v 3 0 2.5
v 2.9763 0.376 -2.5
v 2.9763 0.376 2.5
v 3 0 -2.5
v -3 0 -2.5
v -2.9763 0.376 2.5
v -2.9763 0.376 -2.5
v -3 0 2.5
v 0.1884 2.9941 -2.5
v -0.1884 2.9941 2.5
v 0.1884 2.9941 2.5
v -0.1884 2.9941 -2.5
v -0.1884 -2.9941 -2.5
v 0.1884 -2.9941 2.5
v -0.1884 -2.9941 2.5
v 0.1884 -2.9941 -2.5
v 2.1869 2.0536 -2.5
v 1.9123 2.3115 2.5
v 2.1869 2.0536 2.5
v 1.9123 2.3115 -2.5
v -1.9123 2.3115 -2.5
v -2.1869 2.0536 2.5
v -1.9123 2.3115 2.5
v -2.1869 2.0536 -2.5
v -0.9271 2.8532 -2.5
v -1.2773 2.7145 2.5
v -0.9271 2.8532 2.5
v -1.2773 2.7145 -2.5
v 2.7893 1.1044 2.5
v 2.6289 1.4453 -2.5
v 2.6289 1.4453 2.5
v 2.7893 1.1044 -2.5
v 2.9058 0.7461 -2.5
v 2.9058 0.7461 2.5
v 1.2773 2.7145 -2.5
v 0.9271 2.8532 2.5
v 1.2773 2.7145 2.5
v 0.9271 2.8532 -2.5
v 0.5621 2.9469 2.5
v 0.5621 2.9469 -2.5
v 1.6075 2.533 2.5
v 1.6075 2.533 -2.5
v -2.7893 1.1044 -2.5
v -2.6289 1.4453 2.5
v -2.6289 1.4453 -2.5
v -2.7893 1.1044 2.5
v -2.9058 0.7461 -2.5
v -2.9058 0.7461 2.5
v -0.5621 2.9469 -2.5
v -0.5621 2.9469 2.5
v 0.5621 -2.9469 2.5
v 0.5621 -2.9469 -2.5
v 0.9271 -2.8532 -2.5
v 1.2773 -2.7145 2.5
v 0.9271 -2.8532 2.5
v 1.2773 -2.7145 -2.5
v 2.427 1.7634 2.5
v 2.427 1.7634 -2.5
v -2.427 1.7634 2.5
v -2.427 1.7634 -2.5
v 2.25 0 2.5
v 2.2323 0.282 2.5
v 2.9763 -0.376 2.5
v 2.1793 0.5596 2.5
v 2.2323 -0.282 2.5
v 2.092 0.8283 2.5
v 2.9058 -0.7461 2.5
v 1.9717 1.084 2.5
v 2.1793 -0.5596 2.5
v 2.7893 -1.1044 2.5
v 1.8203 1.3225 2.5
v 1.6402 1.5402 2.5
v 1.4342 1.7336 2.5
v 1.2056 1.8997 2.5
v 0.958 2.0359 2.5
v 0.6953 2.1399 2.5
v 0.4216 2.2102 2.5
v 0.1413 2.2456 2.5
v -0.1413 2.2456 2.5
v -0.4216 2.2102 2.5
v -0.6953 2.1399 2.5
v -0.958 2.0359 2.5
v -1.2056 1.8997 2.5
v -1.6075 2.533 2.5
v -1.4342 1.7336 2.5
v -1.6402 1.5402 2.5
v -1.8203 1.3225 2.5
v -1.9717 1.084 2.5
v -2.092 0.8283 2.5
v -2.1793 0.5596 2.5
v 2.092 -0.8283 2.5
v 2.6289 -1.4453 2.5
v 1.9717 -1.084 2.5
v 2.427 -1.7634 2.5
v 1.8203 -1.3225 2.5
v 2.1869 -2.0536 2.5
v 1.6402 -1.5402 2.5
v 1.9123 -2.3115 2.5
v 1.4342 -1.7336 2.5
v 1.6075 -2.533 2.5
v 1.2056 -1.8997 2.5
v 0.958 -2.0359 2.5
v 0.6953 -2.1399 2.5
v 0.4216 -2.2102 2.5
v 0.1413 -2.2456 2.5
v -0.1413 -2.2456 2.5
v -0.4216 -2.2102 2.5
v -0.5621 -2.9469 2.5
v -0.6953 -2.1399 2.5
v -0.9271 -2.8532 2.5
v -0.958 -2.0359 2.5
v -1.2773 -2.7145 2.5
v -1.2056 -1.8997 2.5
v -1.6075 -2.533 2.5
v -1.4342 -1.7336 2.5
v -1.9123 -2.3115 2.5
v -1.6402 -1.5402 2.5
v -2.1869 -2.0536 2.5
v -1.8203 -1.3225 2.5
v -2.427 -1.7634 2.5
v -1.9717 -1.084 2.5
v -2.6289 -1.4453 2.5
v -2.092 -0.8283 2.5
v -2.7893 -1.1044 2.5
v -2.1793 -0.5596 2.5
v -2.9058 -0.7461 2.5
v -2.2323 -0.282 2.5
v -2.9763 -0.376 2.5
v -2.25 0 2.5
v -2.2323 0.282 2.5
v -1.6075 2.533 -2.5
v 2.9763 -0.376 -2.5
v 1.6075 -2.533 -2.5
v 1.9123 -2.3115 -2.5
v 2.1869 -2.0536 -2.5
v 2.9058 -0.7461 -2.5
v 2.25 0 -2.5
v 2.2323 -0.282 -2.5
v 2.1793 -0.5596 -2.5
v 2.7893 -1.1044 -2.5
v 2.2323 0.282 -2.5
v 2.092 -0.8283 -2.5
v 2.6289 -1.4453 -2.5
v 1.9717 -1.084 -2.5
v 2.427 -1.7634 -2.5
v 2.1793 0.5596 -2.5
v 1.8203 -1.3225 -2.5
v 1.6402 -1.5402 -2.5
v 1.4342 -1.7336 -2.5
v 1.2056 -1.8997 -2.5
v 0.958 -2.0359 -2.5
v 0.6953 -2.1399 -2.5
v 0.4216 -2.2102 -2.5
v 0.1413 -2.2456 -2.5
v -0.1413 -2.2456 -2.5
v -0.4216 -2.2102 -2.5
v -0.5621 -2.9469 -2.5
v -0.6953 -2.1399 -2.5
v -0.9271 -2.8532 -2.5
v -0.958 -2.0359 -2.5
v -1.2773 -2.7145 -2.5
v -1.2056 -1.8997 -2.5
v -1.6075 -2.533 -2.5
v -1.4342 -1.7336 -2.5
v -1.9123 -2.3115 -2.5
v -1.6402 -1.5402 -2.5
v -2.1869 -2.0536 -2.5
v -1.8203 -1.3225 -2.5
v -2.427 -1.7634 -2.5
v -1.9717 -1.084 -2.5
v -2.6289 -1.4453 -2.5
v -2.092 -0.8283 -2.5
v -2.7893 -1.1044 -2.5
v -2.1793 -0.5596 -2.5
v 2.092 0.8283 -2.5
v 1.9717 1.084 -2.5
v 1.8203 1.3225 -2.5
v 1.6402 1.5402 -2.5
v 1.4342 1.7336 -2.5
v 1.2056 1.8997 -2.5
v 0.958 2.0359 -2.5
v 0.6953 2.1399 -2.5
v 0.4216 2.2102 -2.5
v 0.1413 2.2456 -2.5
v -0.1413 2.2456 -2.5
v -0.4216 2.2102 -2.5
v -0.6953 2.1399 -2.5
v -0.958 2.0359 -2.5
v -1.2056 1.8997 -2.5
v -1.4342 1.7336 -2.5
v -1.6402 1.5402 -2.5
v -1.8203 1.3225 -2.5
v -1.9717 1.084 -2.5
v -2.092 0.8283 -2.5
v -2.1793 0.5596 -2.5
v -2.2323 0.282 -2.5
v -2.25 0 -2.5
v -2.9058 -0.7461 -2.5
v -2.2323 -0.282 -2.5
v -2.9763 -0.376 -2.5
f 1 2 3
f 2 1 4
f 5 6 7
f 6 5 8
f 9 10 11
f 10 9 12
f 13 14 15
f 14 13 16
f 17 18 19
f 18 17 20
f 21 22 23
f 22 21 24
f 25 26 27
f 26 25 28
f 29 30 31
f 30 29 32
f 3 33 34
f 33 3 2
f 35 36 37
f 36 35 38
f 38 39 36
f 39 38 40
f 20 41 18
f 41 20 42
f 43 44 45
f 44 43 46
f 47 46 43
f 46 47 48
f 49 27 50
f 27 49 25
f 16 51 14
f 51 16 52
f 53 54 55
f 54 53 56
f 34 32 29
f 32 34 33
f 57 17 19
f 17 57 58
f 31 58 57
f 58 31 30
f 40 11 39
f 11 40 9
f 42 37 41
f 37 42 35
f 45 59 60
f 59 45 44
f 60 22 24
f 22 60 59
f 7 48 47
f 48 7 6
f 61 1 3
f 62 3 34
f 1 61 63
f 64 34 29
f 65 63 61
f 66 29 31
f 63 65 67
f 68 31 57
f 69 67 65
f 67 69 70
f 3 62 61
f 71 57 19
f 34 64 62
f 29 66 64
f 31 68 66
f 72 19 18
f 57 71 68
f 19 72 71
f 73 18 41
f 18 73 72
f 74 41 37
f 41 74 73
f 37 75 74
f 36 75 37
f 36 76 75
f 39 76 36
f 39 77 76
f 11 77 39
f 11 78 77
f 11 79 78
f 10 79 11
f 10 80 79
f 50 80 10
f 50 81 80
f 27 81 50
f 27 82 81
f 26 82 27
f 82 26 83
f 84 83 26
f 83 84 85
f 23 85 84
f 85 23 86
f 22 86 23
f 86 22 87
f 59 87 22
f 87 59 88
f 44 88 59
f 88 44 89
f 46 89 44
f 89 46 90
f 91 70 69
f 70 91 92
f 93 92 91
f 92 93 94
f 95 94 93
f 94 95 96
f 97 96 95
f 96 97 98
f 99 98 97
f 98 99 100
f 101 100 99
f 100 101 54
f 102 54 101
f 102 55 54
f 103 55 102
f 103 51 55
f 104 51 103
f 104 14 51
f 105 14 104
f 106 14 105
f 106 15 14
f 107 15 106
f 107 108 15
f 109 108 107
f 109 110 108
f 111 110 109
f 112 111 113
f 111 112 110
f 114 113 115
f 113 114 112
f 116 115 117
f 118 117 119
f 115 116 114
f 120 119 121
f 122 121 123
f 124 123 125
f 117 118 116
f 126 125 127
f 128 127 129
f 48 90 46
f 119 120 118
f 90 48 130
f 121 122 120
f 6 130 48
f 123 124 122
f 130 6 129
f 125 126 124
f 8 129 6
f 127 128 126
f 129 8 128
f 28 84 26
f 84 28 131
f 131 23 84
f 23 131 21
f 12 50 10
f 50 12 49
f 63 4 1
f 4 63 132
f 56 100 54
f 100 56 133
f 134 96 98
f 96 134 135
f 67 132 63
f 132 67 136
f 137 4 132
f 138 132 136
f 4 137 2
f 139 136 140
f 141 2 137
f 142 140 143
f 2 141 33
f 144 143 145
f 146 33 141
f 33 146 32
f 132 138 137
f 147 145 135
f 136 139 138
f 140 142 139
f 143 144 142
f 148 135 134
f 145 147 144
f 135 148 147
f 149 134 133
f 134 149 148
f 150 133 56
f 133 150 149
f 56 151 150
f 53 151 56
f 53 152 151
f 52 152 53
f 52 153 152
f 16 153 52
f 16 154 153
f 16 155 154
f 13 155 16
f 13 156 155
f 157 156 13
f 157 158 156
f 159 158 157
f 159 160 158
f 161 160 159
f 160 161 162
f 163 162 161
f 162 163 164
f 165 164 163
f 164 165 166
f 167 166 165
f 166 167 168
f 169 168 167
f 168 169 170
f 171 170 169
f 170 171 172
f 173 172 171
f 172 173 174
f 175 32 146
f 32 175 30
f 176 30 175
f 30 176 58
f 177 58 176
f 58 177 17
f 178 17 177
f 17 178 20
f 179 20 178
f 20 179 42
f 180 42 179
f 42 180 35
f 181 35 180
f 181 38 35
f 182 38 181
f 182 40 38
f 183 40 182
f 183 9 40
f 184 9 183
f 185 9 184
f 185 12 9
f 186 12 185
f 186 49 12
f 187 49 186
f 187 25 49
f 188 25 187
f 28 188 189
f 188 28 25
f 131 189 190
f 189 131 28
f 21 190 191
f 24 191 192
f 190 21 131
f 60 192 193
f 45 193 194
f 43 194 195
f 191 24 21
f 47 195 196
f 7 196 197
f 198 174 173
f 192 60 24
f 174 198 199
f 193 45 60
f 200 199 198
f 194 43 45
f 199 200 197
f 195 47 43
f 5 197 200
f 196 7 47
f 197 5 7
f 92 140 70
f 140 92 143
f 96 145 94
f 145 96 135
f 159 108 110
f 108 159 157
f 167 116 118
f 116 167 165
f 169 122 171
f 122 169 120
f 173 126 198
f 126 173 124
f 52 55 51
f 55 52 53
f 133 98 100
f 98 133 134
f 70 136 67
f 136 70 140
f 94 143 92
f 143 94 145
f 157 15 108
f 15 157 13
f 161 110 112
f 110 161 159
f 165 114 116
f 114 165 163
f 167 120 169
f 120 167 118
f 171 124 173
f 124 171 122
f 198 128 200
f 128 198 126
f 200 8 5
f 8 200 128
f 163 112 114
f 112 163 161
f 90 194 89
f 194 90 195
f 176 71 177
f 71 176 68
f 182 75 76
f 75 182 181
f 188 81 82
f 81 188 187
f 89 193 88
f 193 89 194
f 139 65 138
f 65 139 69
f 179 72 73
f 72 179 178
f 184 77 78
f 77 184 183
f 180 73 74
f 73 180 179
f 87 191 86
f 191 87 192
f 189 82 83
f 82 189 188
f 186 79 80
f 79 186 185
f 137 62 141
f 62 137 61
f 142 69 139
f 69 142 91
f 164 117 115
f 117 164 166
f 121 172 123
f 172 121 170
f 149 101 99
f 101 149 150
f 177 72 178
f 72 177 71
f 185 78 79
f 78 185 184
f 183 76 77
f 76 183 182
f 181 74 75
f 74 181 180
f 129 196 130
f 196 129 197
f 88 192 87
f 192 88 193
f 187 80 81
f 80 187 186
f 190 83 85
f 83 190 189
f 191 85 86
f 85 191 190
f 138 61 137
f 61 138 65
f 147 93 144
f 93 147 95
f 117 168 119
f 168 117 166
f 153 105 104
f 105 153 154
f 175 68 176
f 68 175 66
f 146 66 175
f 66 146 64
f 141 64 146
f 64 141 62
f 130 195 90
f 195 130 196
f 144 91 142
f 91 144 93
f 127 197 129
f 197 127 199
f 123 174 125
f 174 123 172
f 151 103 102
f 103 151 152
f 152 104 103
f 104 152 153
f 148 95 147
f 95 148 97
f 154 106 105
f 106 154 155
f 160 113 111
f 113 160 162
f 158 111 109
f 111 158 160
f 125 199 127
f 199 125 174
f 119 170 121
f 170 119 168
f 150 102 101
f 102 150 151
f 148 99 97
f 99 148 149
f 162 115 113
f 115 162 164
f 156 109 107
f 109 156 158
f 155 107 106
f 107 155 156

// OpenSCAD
$fn = 50;


difference() {
	union() {
		translate(v = [0, 0, -2.5000000000]) {
			cylinder(h = 5, r = 3.0000000000);
		}
	}
	union() {
		translate(v = [0, 0, -100.0000000000]) {
			cylinder(h = 200, r = 2.2500000000);
		}
	}
}
